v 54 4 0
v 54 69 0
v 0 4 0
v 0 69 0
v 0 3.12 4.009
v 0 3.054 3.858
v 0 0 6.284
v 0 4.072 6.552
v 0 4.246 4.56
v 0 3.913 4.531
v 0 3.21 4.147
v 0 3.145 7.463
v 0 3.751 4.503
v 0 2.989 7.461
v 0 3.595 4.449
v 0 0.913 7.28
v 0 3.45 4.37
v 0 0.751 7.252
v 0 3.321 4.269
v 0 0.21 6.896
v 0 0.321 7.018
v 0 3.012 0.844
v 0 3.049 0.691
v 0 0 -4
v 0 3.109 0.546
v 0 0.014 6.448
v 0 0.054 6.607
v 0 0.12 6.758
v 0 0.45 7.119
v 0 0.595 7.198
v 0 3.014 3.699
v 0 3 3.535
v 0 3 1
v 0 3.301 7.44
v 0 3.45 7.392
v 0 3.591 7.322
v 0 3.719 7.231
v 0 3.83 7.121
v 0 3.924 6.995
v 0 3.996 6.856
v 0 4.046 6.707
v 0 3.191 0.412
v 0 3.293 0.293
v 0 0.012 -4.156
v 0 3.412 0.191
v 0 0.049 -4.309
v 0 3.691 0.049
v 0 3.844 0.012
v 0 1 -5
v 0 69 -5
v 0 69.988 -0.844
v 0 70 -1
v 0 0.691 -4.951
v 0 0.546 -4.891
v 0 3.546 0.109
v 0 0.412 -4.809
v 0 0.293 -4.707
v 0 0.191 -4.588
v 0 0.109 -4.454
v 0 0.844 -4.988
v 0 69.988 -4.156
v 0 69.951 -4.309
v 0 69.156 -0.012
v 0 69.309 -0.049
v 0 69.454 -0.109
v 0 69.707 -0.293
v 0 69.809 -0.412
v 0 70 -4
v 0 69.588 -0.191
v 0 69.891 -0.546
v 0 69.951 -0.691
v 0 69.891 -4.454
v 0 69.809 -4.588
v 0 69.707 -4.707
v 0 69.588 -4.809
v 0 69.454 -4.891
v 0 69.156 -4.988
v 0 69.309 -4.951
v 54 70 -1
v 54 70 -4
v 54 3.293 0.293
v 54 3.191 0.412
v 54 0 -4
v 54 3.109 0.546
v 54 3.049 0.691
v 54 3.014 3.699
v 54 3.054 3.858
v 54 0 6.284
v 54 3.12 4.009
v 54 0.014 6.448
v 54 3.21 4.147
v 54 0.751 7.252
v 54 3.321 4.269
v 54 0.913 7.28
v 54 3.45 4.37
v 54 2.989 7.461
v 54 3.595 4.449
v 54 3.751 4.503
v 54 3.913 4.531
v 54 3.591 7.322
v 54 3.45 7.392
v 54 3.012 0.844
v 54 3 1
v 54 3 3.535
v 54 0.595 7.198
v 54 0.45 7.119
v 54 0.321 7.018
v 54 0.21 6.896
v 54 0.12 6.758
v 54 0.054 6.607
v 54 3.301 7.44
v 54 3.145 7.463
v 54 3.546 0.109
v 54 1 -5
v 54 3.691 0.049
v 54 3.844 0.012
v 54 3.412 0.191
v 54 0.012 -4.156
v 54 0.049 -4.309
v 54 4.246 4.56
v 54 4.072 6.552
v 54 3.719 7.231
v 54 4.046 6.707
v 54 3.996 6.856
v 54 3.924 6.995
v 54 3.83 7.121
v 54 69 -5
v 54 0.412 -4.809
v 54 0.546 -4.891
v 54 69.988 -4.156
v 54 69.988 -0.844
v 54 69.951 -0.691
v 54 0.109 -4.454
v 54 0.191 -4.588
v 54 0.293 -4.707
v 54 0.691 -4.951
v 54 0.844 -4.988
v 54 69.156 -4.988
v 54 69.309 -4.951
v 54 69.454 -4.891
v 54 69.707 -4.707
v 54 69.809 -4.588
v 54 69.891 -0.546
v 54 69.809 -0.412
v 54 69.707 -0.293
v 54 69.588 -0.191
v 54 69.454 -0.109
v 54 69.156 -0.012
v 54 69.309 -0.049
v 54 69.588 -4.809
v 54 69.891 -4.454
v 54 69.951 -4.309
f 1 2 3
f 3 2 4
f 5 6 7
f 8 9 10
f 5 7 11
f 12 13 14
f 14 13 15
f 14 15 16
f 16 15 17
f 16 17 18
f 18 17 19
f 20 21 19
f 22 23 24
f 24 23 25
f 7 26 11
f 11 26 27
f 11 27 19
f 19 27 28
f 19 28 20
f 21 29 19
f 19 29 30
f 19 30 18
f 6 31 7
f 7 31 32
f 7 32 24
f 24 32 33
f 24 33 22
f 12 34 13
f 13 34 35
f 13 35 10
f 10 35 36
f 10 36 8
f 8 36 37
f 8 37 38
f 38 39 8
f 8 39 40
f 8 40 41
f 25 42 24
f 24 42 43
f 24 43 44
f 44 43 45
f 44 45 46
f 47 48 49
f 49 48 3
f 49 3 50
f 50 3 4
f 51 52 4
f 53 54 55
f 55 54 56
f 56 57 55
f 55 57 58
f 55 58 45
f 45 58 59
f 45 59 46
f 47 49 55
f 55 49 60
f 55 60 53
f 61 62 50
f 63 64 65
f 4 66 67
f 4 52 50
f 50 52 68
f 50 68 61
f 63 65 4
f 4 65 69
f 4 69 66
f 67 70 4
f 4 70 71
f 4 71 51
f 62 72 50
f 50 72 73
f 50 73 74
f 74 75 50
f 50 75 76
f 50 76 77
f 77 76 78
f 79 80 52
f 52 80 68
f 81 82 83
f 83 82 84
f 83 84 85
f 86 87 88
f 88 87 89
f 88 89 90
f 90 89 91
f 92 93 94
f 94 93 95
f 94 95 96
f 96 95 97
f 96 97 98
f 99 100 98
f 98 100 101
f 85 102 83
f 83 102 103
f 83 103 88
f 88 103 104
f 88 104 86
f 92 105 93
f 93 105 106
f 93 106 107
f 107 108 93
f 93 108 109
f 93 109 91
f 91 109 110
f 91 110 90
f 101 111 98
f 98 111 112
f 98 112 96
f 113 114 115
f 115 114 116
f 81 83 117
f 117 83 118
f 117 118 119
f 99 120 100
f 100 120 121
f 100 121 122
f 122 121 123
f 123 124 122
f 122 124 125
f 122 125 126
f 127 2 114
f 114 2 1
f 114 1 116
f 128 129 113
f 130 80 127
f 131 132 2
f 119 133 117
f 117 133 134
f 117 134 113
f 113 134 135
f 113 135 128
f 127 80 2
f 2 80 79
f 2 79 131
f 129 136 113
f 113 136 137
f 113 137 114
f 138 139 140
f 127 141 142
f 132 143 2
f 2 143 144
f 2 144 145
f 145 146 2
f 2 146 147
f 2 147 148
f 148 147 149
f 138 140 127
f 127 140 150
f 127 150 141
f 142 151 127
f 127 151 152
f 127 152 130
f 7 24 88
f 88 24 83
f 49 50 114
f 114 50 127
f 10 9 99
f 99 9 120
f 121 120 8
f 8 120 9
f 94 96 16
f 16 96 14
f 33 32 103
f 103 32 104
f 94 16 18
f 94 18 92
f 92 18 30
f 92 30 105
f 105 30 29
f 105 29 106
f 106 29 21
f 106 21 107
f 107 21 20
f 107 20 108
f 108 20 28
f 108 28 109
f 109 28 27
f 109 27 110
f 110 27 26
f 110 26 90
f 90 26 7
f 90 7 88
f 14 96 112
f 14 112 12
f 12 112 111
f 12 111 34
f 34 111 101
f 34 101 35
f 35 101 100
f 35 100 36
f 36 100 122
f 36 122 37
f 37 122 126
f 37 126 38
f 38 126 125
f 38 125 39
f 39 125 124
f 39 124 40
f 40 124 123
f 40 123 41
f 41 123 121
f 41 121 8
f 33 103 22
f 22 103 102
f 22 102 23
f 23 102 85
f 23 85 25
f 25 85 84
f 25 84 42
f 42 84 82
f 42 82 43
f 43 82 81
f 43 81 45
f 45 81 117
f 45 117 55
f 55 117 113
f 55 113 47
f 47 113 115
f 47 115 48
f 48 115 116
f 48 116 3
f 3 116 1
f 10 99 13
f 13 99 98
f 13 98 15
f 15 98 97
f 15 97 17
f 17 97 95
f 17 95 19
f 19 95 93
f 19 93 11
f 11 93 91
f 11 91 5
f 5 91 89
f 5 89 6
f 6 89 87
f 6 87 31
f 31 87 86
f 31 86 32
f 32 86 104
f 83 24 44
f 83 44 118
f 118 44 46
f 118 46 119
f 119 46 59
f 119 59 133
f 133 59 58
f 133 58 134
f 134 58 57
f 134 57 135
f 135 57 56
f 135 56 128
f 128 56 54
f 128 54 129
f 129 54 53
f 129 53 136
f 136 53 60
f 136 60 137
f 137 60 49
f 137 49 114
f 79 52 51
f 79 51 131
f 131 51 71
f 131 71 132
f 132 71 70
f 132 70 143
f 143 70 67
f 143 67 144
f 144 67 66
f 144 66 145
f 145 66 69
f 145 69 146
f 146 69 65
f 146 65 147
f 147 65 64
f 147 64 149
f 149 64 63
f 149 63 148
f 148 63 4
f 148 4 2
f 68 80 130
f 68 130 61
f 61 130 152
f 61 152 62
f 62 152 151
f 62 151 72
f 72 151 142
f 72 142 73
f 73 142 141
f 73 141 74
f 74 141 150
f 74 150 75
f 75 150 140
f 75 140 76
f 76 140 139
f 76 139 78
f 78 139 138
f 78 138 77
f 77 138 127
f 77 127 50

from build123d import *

# Parameters (mm, degrees)
SKETCH2_W           = 54
SKETCH2_H           = 70
BOSS_EXTRUDE1_DEPTH = 5
BOSS_EXTRUDE3_DEPTH = 54
FILLET1_R           = 1


with BuildPart() as part:
    # Sketch2 → Boss-Extrude1 (new body)
    with BuildSketch(Plane.XY):
        with Locations((27, 35)):
            Rectangle(SKETCH2_W, SKETCH2_H)
    extrude(amount=-BOSS_EXTRUDE1_DEPTH)

    # Sketch6 → Boss-Extrude3 (add, through all)
    with BuildSketch(Plane(origin=(0, 0, 0), x_dir=(0, 0, -1), z_dir=(1, 0, 0))):
        Polygon((5, 0), (5, 3), (-4.451006478, 3), (-4.560038877, 4.246246021), (-7.548622971, 3.984778792), (-7.2, 0), align=None)
    extrude(amount=BOSS_EXTRUDE3_DEPTH)

    # Fillet1
    fillet1_edges = [part.edges().sort_by_distance(p)[0] for p in [
        (27, 3, 0),
        (27, 70, -5),
        (27, 3, 4.451006478),
        (27, 3.984778792, 7.548622971),
        (27, 0, 7.2),
        (27, 70, 0),
        (27, 0, -5),
    ]]
    fillet(fillet1_edges, radius=FILLET1_R)


solid = part.part
